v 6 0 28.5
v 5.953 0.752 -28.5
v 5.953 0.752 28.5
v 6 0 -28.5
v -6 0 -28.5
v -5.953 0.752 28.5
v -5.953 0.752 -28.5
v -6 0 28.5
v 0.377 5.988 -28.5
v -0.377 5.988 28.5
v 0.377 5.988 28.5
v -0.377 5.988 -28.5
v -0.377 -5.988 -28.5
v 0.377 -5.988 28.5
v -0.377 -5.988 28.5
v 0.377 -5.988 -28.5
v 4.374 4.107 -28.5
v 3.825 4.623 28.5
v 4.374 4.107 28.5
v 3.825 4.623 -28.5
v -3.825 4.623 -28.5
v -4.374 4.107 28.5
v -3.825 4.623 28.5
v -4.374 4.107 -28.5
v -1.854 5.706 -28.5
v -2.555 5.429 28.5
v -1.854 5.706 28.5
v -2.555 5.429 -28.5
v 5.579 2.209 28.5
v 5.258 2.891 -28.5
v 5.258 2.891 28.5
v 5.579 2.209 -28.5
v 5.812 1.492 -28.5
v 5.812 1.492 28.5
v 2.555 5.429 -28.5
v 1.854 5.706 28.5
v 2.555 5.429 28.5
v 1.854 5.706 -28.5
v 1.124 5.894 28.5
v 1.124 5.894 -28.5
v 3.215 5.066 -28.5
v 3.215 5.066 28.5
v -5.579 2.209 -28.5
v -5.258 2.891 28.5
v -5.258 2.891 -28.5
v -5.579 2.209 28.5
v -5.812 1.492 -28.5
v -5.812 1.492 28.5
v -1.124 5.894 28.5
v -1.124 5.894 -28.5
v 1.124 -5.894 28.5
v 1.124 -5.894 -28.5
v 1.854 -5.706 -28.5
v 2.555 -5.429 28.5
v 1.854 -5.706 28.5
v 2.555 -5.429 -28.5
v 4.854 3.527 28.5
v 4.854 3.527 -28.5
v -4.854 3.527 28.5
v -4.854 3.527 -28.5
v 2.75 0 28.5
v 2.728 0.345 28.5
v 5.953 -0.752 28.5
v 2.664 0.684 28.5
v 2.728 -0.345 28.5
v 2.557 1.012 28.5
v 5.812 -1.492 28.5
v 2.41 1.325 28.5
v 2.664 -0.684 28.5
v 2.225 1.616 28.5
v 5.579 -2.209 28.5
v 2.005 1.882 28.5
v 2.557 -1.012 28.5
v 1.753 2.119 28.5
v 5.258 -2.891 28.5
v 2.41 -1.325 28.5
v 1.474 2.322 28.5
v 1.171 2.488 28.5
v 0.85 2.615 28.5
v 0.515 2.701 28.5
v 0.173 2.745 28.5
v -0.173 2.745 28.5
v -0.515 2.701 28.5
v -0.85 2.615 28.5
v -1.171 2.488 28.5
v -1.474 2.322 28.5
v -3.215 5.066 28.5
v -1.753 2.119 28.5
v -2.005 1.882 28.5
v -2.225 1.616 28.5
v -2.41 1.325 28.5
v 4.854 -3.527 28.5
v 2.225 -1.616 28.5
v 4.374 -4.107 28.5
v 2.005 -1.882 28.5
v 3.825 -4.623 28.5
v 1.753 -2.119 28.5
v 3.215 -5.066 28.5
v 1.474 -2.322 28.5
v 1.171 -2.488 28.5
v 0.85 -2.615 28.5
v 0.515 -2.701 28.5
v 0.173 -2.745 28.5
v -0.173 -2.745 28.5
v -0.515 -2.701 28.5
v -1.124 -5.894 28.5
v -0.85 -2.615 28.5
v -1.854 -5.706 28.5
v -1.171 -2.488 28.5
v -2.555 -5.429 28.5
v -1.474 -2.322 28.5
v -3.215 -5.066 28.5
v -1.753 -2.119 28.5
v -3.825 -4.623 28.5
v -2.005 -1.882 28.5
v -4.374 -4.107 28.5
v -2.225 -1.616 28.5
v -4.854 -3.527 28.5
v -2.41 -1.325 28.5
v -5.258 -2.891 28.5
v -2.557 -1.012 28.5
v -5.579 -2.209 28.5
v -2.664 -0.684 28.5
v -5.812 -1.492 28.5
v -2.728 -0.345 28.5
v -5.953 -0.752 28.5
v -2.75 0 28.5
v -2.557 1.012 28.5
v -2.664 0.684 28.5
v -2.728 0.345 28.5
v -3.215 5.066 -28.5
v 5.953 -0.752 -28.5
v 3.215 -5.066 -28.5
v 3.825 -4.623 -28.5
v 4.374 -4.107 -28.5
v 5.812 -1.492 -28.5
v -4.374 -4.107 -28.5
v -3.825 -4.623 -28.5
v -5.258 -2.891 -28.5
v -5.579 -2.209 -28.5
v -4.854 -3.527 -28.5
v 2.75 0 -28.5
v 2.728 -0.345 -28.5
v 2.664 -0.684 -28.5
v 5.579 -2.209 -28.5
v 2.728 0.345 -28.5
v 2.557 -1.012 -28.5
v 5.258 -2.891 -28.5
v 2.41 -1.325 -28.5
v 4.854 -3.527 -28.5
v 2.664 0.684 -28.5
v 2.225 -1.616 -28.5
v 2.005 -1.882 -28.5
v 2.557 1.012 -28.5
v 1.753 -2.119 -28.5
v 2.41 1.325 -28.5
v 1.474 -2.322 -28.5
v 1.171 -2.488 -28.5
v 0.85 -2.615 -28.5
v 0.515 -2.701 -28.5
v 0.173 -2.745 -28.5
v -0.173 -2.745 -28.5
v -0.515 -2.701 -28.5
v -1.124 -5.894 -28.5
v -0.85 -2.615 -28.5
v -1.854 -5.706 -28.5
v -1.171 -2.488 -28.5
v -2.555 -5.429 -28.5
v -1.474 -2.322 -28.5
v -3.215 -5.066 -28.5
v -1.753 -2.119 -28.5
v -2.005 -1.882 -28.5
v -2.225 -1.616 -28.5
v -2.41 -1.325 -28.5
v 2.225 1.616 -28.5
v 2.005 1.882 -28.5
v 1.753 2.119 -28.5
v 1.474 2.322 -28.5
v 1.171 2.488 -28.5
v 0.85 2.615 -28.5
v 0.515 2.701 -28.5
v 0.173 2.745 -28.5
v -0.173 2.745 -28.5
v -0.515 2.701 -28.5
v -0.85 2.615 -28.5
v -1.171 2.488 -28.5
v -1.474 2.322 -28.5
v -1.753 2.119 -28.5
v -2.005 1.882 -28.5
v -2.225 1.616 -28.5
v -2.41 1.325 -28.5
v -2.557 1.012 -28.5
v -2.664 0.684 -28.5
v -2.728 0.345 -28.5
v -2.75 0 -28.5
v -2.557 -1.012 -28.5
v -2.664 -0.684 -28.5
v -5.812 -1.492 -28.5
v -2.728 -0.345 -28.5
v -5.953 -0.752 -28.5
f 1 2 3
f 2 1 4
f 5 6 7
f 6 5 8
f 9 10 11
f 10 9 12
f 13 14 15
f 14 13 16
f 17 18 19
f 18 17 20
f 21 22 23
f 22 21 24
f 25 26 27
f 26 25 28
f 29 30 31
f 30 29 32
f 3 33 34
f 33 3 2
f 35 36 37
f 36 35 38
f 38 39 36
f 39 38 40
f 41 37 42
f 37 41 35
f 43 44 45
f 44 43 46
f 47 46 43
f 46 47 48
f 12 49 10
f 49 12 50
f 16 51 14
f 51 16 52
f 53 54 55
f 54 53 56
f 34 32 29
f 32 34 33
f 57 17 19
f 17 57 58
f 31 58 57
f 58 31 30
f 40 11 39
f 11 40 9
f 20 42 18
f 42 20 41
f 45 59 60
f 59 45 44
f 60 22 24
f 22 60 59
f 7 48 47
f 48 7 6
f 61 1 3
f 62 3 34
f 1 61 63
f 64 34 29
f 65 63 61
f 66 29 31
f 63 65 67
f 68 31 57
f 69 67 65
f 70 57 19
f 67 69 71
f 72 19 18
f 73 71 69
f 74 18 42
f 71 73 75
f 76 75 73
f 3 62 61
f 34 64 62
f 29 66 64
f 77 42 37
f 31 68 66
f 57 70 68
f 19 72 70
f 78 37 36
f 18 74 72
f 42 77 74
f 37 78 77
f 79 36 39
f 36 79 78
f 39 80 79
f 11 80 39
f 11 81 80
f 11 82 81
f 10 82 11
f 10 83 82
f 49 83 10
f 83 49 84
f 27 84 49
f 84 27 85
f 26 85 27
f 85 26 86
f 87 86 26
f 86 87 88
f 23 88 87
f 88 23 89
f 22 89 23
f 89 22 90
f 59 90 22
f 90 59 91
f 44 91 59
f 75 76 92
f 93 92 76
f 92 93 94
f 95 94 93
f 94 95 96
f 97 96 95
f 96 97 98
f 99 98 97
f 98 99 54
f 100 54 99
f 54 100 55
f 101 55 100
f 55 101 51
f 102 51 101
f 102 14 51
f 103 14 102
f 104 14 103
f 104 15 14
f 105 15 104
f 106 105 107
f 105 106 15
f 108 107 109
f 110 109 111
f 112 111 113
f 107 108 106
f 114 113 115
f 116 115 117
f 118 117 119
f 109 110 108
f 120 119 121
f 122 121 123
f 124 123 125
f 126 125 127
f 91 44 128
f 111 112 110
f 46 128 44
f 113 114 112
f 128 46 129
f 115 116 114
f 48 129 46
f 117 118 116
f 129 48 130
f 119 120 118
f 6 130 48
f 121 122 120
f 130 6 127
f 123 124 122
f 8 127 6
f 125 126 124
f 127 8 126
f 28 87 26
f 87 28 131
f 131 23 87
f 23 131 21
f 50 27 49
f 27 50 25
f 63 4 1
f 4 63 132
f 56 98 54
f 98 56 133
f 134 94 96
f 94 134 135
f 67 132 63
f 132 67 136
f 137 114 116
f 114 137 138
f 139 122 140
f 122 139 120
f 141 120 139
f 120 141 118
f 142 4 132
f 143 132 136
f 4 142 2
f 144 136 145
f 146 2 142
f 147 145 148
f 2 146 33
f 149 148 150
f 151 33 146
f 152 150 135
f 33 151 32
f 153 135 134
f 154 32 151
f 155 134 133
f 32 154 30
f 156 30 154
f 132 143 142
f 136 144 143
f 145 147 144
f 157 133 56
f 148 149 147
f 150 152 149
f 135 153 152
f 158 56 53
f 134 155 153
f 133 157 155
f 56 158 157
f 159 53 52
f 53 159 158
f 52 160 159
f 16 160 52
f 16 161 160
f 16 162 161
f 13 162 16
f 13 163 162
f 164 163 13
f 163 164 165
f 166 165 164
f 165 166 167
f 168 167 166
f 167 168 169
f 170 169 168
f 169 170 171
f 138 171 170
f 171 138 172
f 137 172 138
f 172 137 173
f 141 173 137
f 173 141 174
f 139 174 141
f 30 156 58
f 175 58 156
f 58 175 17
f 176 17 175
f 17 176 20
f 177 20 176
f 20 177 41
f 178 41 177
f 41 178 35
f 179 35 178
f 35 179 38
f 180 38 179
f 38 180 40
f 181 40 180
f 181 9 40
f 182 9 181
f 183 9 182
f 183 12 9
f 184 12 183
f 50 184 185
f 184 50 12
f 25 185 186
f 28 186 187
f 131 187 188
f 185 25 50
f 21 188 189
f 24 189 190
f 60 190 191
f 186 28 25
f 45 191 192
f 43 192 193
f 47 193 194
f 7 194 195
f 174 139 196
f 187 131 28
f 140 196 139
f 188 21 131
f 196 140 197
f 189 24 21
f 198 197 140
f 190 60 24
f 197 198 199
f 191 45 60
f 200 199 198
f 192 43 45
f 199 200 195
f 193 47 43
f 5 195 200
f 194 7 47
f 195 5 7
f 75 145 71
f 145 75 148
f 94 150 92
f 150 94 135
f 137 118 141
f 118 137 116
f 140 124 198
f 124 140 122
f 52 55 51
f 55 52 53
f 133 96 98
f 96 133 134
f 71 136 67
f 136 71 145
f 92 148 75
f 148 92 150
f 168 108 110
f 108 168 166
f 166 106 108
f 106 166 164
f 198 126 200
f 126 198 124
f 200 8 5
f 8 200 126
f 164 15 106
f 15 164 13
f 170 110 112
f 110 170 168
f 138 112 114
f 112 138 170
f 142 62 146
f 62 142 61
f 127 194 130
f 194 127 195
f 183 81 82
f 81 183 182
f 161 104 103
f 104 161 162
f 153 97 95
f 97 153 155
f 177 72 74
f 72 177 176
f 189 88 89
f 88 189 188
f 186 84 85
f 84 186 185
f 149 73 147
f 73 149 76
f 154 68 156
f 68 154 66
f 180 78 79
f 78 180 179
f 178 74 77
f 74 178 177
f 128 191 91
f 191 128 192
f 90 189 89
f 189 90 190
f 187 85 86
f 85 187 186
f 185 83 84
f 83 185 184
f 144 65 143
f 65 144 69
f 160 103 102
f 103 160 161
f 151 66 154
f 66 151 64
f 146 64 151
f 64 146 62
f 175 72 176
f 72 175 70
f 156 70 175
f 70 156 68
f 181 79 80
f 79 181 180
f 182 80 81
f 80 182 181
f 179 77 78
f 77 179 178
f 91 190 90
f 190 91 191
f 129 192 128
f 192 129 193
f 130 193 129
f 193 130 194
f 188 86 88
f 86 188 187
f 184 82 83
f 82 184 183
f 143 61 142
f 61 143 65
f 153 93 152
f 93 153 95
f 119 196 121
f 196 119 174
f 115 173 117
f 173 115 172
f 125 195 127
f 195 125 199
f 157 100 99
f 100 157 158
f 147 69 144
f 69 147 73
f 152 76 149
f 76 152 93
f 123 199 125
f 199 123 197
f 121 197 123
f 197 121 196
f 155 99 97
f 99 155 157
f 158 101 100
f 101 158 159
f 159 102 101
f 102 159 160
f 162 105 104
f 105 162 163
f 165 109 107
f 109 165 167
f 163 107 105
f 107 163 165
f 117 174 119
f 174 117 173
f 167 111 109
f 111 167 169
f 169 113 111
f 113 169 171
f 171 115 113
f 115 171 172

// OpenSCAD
$fn = 50;


difference() {
	union() {
		translate(v = [0, 0, -28.5000000000]) {
			cylinder(h = 57, r = 6.0000000000);
		}
	}
	union() {
		translate(v = [0, 0, -100.0000000000]) {
			cylinder(h = 200, r = 2.7500000000);
		}
	}
}
